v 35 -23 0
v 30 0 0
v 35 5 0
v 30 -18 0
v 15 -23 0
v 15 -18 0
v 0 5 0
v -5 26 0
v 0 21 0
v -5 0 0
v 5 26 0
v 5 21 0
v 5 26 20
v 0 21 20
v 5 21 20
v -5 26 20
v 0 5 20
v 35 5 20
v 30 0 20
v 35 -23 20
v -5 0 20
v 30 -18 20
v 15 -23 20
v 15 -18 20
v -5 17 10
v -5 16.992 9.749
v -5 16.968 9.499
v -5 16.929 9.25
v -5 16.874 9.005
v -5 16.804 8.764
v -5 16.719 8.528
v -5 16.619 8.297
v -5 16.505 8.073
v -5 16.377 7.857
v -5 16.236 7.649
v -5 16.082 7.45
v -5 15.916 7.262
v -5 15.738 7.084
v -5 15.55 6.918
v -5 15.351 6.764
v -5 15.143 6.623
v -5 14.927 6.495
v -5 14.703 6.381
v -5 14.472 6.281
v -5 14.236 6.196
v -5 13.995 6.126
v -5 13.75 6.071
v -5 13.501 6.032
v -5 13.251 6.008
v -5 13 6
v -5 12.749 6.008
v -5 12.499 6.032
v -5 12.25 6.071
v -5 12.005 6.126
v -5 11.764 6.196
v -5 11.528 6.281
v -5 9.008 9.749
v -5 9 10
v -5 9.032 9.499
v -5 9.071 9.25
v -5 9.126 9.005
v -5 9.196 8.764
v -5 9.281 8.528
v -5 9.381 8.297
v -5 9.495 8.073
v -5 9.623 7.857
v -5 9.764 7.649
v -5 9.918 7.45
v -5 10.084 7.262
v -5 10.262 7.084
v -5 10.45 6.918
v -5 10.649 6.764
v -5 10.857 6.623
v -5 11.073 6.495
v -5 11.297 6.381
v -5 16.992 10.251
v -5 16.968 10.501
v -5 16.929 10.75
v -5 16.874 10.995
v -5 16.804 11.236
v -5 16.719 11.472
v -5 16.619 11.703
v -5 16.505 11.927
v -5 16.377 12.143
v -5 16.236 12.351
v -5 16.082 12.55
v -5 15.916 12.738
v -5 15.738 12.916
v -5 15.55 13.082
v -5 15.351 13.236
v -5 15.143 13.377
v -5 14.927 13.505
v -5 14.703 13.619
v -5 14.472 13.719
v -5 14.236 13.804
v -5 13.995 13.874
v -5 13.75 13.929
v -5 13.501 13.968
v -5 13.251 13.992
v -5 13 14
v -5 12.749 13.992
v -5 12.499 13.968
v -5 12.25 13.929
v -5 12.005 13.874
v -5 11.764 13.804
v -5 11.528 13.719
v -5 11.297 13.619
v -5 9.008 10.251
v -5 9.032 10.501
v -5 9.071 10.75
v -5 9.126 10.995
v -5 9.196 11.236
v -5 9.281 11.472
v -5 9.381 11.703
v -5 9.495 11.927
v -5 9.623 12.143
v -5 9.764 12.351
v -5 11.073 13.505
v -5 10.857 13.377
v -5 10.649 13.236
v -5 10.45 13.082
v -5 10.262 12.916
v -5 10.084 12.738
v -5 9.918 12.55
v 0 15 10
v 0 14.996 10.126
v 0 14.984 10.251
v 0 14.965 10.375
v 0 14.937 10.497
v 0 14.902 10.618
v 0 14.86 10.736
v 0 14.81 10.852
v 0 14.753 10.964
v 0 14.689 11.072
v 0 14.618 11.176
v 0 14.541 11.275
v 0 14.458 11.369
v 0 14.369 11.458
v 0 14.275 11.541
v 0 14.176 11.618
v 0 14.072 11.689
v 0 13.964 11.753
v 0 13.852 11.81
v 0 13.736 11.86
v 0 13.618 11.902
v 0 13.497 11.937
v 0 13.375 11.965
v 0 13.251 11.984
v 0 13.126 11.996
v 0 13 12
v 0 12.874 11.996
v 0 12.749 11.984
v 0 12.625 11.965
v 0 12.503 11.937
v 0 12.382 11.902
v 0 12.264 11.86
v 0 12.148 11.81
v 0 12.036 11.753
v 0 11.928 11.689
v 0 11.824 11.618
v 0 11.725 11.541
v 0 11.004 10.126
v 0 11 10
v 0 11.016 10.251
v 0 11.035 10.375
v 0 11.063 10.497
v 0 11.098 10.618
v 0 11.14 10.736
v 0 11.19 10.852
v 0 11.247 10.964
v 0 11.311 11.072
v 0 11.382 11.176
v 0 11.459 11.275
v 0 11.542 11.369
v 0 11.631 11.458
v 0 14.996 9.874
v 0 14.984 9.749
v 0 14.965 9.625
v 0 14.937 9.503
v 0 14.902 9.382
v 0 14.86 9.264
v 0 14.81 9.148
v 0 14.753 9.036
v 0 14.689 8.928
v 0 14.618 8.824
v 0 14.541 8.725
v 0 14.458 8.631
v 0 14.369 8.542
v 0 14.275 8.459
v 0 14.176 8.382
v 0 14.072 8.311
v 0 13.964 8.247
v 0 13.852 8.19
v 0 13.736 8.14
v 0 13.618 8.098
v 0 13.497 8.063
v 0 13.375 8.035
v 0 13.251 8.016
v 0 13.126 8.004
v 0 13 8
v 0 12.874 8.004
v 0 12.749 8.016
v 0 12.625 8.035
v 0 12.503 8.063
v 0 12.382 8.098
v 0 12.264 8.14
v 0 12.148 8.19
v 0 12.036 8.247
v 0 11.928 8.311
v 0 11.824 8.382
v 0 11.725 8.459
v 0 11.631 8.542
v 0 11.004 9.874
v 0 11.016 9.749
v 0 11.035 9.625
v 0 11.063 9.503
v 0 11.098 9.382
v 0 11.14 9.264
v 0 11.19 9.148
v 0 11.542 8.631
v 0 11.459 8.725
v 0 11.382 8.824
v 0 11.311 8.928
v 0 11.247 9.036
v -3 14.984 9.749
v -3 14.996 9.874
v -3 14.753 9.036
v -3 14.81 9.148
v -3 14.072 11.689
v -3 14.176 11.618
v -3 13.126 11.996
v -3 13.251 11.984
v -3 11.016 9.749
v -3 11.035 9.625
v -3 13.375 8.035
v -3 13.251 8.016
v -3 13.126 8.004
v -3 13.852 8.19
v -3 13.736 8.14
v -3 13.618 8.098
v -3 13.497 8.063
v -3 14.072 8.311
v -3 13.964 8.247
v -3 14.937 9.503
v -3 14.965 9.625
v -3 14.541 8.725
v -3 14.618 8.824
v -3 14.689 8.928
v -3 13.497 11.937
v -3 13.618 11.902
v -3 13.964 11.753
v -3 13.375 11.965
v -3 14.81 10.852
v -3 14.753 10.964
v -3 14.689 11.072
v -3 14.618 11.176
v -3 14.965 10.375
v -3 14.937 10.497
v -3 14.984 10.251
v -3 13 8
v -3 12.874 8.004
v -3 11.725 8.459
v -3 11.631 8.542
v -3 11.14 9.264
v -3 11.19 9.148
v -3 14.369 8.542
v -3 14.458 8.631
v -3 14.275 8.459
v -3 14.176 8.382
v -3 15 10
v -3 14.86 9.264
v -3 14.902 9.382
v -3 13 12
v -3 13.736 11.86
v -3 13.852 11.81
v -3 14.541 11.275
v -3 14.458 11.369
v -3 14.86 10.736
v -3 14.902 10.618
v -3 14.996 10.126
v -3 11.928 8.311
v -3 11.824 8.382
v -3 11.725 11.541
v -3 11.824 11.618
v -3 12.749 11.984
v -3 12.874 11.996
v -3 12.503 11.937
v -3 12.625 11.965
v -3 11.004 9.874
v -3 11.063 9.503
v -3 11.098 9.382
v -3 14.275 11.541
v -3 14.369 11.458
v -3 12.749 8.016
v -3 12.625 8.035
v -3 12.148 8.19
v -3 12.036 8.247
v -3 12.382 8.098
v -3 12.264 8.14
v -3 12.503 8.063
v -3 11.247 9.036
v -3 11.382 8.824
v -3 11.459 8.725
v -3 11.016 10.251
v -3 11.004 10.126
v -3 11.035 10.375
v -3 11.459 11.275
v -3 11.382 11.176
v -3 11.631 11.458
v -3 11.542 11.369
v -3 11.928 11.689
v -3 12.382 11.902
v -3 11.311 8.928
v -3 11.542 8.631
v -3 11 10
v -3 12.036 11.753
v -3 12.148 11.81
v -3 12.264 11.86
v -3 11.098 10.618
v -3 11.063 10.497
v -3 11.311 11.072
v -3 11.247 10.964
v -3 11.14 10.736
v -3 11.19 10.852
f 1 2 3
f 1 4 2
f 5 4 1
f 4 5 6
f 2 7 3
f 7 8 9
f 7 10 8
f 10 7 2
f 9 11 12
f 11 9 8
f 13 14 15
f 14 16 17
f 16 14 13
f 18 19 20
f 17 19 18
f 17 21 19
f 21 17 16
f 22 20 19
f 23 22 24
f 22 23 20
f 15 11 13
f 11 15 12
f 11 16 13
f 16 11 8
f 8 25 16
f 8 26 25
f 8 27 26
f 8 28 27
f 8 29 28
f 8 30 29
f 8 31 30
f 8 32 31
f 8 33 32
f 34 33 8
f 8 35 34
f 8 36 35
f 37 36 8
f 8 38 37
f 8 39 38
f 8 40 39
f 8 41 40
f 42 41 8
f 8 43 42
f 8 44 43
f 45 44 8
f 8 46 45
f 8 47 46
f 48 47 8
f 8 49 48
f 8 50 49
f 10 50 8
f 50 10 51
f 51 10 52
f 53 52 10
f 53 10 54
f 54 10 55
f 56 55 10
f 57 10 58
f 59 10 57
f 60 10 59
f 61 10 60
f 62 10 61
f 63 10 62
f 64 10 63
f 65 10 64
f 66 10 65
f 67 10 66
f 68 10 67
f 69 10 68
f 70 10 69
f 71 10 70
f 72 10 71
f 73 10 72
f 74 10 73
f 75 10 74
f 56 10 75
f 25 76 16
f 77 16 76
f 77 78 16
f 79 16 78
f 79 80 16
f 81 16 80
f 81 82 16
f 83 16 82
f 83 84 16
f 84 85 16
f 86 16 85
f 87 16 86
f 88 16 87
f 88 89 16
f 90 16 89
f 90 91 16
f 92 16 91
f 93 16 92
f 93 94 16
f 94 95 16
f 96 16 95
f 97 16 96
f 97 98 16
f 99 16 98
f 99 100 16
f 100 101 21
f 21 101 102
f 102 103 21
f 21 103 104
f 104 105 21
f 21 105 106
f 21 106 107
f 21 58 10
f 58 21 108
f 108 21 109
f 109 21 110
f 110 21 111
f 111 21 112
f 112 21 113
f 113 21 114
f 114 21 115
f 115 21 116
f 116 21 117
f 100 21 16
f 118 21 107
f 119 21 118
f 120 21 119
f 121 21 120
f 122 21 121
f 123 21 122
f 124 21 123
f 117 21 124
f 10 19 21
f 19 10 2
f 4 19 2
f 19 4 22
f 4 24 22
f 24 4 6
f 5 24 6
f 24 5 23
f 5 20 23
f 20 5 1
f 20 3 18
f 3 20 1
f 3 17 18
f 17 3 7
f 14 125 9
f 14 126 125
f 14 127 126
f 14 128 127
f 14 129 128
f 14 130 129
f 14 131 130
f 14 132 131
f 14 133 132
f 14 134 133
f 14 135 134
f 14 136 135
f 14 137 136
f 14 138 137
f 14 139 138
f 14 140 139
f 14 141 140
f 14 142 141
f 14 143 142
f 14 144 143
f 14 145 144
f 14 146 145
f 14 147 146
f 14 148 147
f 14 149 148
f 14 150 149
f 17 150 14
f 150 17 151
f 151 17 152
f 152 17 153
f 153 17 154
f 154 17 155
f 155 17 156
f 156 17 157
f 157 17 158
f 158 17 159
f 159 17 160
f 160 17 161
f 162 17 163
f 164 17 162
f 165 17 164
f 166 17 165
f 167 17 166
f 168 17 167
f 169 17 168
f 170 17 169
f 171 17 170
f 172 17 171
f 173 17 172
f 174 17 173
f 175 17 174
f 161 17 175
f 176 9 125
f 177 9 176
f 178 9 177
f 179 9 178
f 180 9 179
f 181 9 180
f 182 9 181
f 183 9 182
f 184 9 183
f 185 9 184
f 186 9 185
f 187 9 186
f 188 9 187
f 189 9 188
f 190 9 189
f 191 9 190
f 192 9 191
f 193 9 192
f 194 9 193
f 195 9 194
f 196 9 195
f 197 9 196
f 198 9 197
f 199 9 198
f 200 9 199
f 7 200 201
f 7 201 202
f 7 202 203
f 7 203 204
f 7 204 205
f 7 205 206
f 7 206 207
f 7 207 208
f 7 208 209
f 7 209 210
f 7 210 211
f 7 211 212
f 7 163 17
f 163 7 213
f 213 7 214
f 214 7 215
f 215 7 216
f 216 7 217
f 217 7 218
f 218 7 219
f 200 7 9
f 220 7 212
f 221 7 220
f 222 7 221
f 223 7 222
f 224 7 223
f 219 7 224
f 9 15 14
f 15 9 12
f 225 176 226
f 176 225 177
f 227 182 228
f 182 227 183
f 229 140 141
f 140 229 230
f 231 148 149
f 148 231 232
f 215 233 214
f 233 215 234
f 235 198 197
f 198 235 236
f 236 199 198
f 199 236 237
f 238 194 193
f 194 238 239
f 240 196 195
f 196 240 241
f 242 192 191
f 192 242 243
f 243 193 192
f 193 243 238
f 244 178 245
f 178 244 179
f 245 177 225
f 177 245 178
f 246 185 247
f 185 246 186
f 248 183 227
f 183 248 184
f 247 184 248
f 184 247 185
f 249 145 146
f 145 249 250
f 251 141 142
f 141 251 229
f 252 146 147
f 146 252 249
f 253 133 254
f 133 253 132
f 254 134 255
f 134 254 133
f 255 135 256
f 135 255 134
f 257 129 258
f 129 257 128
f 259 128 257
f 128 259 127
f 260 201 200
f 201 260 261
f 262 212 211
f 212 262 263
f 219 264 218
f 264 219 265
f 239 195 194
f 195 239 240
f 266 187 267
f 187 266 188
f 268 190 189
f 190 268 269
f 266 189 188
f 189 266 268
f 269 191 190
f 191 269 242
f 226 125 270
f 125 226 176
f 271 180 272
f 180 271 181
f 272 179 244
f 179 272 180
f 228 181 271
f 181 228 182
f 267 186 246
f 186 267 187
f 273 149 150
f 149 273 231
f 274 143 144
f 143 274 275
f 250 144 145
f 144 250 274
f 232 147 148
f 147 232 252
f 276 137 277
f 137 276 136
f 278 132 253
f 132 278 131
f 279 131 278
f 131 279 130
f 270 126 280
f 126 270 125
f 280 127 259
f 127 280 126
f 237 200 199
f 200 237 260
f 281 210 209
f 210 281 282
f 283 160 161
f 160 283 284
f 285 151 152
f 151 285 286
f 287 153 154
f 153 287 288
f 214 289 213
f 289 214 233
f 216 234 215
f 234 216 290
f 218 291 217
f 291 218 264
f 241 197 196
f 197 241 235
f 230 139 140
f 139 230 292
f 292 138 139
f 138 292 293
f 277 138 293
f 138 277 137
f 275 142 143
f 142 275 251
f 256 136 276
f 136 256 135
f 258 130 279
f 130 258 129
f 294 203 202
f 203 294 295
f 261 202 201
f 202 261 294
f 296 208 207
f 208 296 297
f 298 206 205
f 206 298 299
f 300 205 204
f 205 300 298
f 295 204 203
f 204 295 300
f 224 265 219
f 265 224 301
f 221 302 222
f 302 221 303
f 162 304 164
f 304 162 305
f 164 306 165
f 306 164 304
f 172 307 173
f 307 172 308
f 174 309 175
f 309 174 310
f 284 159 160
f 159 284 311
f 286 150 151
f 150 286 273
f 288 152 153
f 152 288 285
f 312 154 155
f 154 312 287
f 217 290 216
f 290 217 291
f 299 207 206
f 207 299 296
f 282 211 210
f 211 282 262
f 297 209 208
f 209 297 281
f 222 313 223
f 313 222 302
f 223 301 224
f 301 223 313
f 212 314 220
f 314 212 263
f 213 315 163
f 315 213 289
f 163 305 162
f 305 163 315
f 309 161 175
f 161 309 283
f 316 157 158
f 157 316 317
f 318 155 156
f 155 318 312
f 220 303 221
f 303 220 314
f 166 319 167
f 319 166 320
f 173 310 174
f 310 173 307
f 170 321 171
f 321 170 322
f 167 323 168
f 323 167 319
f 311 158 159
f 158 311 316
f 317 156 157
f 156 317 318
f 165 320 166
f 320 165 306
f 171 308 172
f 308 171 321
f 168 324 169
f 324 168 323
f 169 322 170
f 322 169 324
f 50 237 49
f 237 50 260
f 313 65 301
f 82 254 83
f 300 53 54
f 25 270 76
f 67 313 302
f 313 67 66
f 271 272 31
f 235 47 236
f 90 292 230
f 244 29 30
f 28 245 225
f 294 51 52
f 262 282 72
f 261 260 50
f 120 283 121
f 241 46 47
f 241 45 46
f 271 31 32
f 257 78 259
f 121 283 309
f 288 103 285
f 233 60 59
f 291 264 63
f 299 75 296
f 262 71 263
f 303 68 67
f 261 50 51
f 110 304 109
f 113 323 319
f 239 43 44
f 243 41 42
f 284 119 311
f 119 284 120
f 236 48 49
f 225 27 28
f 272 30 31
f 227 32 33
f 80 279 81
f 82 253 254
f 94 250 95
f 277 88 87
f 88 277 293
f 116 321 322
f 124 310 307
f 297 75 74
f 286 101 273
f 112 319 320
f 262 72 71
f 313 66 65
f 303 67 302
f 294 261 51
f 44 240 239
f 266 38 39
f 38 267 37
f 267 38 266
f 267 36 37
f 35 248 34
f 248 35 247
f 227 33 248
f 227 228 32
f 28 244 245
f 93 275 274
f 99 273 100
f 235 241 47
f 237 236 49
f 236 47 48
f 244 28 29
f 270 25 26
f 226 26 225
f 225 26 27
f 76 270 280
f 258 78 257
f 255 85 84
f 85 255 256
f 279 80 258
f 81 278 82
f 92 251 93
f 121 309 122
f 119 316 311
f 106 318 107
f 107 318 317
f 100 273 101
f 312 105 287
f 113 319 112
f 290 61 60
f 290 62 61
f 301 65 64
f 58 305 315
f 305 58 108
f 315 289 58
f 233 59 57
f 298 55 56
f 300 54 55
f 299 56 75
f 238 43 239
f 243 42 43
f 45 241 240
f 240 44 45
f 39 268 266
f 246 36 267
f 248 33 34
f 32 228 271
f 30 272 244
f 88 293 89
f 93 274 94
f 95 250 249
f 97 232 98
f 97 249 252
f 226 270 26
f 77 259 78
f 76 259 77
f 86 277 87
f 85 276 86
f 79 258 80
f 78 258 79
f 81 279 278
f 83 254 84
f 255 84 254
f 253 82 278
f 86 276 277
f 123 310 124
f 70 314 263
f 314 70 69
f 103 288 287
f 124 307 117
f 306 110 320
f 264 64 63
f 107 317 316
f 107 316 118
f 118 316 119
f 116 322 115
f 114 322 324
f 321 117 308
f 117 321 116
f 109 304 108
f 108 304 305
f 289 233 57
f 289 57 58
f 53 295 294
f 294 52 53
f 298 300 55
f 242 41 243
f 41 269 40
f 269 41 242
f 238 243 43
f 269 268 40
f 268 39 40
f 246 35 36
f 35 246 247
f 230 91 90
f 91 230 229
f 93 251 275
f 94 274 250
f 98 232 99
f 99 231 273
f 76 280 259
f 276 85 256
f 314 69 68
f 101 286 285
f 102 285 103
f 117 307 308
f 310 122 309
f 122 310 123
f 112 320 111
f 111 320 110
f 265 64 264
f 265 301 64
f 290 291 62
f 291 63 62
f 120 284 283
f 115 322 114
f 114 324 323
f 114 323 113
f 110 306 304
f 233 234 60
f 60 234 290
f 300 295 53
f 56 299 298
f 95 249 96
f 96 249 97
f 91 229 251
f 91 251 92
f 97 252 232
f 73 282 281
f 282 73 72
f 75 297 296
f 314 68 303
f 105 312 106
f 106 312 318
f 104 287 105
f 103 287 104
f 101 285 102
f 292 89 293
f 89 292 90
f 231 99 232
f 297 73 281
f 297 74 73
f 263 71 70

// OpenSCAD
//--------------------------------------------------------------
// Name: Back_panel_holder.scad
// Version: 1.4
// Purpose: 
// Author: Evgeny Klepikov
// E-mail: klek07@ya.ru
//
// Created: 05.12.2017
// Updated: 24.12.2017
// Copyright: (c) 2017 WildFox24
// Licence: GPL v3
//--------------------------------------------------------------
//
Ws=5;
module BpHolder() {
  linear_extrude(20) {
    translate([0,0,0]) square([35,Ws], false);
    translate([-Ws,21,0]) rotate([0,0,360]) square([10,Ws], false);
    rotate([0,0,90]) square([21,Ws], false);
    translate([30,0,0]) rotate([0,0,270]) square([19,Ws], false);
    translate([30+Ws,-18,0]) rotate([0,0,180]) square([20,Ws], false);
  }
}
difference() {
  BpHolder();
  translate([-Ws,13,10]) rotate([0,90,0]) cylinder(d=4, h=Ws, $fn=100);
  translate([-Ws,13,10]) rotate([0,90,0]) cylinder(d1=8, d2=4, h=2, $fn=100);
}
